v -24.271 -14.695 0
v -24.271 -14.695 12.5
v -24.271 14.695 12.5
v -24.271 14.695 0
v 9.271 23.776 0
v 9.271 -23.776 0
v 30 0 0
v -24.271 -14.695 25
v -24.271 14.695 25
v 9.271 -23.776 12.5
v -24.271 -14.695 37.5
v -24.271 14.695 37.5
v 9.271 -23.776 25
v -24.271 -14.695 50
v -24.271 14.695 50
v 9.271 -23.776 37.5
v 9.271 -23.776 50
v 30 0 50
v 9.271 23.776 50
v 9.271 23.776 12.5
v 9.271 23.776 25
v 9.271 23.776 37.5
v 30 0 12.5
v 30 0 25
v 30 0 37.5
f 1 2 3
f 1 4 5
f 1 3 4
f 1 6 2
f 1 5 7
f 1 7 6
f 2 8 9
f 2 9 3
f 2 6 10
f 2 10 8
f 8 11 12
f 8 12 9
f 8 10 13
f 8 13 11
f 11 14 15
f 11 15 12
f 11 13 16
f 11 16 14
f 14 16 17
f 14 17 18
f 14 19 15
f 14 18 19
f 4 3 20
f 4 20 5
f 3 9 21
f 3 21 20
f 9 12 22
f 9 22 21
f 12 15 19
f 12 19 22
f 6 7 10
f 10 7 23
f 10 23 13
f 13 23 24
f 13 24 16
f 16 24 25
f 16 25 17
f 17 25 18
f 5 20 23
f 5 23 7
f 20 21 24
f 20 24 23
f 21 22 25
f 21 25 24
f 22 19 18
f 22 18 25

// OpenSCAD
// Start: lazy_union
default_5_default_5();
// End: lazy_union

// Modules.

// 'PartMaterial undef-default - default 5.0'
module default_5_default_5() {
  // 'None : _combine_solids_and_holes'
  union() {
    // 'example2 : _combine_solids_and_holes'
    union() {
      // 'prism'
      multmatrix(m=[[-1.0, -0.0, -0.0, -0.0], [-0.0, -1.0, -0.0, -0.0], [0.0, 0.0, 1.0, 0.0], [0.0, 0.0, 0.0, 1.0]]) {
        // 'prism : _combine_solids_and_holes'
        union() {
          // 'prism'
          linear_extrude(height=50.0, twist=0.0, slices=4, scale=[1.0, 1.0]) {
            polygon(points=[[-30.0, 0.0], [-9.270509831248424, 23.776412907378838], [24.27050983124842, 14.69463130731183], [24.270509831248425, -14.694631307311825], [-9.270509831248416, -23.77641290737884]]);
          }
        }
      }
    }
  }
} // end module default_5_default_5
